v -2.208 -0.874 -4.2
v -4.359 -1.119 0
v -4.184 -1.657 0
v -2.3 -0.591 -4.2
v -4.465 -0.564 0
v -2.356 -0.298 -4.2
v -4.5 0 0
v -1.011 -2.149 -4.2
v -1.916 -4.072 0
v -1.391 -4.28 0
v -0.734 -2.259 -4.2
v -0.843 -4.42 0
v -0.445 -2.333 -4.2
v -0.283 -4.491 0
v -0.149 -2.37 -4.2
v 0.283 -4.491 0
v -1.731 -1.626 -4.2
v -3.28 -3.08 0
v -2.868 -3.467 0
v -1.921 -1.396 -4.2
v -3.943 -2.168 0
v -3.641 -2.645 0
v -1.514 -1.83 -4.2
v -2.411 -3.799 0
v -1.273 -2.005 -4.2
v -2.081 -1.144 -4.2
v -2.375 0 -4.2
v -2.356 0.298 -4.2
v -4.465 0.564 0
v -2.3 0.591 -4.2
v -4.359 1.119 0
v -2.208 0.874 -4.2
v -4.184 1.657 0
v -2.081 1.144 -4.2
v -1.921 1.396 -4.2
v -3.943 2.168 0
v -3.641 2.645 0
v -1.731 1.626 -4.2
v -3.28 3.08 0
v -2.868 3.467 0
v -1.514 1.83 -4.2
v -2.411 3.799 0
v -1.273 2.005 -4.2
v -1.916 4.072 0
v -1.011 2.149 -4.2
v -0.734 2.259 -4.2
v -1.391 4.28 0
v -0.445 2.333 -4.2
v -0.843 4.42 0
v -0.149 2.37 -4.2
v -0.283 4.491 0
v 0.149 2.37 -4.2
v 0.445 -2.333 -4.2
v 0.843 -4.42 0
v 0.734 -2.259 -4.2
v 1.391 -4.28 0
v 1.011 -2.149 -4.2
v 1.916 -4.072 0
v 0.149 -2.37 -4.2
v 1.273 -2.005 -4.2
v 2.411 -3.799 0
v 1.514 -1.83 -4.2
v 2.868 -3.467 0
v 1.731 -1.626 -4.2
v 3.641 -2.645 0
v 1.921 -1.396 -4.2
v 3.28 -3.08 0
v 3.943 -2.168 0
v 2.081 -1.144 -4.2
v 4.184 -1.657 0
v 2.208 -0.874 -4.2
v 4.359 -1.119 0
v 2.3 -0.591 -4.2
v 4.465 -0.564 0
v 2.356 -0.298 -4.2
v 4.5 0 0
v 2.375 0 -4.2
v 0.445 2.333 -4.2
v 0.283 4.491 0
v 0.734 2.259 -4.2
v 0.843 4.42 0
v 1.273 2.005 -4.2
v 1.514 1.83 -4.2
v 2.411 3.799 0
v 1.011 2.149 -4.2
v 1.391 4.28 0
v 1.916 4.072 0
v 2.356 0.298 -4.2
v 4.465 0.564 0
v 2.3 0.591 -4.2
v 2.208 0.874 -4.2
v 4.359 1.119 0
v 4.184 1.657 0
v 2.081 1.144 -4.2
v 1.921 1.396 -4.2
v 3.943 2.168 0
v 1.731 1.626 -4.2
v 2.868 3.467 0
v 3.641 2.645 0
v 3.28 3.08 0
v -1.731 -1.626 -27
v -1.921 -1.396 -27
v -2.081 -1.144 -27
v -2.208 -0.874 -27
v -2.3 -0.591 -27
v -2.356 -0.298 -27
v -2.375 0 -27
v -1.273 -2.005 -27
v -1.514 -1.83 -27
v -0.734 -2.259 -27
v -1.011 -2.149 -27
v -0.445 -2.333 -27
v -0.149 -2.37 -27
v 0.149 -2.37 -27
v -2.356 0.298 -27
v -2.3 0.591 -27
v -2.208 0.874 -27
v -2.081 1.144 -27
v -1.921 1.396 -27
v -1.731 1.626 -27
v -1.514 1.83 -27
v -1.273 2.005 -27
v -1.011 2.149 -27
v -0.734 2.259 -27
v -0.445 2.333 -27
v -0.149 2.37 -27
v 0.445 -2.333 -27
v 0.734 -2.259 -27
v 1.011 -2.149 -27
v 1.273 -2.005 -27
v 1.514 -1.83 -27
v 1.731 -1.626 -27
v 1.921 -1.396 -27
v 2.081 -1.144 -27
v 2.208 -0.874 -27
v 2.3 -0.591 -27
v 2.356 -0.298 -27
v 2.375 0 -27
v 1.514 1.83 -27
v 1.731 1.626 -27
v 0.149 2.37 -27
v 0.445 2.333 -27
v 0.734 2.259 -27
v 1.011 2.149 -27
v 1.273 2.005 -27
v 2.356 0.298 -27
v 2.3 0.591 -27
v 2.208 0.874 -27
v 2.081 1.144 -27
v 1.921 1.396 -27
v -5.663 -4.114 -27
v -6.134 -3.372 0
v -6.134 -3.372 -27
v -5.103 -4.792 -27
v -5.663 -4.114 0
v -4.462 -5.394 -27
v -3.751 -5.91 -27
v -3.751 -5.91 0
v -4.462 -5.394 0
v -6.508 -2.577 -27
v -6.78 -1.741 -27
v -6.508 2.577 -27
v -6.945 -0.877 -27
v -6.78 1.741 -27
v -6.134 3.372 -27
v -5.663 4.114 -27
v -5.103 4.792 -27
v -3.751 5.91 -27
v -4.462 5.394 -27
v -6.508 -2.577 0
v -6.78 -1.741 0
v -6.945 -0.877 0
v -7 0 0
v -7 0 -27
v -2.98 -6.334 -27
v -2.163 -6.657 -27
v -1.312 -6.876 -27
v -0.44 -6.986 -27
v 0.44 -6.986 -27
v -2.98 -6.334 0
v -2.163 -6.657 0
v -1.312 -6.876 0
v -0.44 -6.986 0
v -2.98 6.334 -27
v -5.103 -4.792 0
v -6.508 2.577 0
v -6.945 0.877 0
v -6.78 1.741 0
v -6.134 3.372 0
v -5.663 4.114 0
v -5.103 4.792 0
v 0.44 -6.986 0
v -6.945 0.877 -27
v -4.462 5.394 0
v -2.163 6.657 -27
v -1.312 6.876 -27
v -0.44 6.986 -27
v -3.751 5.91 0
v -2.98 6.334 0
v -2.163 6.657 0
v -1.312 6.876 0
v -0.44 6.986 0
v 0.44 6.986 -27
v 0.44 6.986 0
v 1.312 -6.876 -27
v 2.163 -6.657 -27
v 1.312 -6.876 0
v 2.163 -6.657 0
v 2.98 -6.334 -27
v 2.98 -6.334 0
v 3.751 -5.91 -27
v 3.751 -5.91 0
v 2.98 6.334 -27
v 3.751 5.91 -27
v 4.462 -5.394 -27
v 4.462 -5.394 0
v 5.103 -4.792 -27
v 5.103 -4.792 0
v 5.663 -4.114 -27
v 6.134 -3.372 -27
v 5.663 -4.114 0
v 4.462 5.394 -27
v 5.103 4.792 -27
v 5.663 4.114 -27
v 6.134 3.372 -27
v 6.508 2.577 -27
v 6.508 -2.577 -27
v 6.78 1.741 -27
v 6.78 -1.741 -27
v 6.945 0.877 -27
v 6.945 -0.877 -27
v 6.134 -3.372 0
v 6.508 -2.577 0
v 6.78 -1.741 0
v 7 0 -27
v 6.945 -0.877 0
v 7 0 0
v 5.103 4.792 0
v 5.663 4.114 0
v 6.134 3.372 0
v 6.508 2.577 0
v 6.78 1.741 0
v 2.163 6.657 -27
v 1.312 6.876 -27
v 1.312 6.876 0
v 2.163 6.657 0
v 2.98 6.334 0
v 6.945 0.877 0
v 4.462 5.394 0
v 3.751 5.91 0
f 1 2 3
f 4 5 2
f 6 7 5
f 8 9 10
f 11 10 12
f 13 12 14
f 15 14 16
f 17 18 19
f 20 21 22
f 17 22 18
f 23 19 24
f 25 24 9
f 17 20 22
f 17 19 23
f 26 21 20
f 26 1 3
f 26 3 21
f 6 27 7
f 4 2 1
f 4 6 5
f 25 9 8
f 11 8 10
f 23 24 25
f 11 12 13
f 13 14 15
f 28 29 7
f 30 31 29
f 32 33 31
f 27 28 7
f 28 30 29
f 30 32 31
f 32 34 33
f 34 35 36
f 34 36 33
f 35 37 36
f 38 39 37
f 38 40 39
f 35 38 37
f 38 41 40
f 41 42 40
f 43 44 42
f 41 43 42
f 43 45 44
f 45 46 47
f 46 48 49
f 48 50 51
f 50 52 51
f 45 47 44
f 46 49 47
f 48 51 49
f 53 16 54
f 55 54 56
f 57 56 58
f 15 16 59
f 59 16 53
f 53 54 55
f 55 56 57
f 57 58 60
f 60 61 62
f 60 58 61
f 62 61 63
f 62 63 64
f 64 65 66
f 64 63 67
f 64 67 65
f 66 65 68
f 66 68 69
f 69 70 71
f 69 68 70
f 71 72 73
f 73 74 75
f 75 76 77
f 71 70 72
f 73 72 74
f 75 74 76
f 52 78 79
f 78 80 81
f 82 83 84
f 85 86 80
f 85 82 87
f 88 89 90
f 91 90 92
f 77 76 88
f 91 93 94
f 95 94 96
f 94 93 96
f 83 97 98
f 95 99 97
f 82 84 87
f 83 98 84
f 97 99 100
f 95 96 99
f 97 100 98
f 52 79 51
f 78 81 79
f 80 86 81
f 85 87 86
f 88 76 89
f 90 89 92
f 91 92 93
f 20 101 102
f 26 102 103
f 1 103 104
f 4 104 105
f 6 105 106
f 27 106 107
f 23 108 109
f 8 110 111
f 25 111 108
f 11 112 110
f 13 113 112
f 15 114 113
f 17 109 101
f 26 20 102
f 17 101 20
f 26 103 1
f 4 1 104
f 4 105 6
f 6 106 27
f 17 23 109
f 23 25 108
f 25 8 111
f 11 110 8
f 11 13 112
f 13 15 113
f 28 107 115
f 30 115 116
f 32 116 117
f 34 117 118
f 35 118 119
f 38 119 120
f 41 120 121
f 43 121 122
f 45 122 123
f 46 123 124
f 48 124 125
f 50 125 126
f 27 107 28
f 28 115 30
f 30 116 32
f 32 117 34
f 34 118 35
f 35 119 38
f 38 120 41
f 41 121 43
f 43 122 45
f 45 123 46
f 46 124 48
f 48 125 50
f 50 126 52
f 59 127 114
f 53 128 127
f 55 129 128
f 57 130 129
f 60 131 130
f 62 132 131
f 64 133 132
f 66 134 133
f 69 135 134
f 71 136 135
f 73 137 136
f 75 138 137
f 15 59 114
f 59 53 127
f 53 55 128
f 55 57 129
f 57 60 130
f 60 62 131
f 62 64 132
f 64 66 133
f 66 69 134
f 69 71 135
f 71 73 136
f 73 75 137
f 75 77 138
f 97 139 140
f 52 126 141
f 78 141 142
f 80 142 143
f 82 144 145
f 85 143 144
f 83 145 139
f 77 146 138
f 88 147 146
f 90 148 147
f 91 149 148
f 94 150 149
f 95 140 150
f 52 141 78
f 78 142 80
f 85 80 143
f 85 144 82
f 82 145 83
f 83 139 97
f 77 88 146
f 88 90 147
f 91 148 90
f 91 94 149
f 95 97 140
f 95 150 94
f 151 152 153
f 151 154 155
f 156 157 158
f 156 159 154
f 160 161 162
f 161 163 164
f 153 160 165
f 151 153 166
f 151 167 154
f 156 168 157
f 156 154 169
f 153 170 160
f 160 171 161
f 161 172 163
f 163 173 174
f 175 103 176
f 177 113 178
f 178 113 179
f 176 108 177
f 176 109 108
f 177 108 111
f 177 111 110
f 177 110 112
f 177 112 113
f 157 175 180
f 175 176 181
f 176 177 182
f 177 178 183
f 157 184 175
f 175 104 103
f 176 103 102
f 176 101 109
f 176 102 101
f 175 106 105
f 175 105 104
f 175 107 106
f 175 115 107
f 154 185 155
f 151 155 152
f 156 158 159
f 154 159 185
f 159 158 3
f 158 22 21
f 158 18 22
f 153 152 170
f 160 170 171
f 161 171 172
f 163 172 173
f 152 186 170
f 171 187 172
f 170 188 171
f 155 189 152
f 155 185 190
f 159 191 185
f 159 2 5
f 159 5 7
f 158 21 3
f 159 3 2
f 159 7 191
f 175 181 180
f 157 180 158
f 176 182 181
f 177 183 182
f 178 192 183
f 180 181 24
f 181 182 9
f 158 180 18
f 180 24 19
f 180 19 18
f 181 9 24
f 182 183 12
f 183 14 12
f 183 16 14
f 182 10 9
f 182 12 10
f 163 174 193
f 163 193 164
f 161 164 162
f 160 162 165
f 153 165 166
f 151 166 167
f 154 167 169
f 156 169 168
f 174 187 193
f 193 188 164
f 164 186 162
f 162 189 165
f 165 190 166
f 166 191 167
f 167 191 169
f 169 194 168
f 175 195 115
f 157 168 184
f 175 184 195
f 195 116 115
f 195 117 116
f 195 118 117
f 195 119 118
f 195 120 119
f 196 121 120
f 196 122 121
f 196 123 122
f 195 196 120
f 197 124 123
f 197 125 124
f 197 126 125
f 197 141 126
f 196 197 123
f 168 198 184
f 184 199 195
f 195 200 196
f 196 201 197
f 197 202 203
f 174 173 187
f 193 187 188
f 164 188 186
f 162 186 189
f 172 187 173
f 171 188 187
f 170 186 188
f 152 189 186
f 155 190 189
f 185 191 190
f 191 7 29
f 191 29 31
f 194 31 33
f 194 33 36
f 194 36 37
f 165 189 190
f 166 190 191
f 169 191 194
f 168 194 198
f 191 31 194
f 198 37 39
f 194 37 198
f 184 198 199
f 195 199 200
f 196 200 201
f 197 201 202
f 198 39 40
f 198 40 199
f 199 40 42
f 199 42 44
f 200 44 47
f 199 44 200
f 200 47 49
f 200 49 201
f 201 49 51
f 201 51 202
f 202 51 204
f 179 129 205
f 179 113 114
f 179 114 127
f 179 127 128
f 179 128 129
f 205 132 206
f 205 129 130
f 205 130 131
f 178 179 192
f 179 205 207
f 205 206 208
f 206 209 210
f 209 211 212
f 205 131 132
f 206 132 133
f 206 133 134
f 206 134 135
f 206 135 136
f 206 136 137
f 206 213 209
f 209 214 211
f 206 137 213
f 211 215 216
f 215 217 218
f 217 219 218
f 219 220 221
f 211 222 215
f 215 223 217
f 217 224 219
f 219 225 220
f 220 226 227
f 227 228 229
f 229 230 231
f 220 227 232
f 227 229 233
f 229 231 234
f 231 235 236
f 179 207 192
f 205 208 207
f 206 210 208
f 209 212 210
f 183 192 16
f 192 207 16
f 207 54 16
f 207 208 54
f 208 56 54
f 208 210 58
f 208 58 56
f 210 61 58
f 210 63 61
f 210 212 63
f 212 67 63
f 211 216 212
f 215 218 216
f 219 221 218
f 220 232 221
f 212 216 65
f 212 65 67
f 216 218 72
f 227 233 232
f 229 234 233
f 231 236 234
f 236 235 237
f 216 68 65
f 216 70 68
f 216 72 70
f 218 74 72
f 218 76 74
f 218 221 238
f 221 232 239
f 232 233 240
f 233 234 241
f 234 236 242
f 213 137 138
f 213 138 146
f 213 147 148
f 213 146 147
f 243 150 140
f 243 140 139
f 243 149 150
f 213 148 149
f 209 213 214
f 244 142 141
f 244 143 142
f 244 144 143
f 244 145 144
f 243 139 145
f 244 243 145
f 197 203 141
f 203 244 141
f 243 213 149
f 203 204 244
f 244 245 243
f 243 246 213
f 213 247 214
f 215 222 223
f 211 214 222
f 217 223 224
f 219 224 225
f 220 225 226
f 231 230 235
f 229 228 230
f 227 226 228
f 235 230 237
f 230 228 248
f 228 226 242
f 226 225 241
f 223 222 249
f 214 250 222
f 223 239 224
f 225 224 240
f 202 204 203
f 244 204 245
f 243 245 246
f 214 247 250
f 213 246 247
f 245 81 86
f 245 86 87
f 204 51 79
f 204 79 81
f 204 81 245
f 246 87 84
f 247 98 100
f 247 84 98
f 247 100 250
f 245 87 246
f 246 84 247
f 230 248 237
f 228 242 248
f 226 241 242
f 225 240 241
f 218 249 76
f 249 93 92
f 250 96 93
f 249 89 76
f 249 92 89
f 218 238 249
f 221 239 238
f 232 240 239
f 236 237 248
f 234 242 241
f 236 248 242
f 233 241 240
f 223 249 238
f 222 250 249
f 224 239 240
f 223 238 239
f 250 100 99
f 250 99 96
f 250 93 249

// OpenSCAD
$fn = 50;

difference() {
	union() {
		translate(v = [0, 0, -27.0]) {
			cylinder(h = 27, r = 7.0);
		}
	}
	union() {
		translate(v = [0, 0, 0]) {
			rotate(a = [0, 0, 0]) {
				difference() {
					union() {
						translate(v = [0, 0, -30.0]) {
							cylinder(h = 30, r = 2.25);
						}
						translate(v = [0, 0, -4.2]) {
							cylinder(h = 4.2, r1 = 2.375, r2 = 4.5);
						}
						translate(v = [0, 0, -30.0]) {
							cylinder(h = 30, r = 2.375);
						}
						translate(v = [0, 0, -30.0]) {
							cylinder(h = 30, r = 2.25);
						}
					}
					union();
				}
			}
		}
	}
}
